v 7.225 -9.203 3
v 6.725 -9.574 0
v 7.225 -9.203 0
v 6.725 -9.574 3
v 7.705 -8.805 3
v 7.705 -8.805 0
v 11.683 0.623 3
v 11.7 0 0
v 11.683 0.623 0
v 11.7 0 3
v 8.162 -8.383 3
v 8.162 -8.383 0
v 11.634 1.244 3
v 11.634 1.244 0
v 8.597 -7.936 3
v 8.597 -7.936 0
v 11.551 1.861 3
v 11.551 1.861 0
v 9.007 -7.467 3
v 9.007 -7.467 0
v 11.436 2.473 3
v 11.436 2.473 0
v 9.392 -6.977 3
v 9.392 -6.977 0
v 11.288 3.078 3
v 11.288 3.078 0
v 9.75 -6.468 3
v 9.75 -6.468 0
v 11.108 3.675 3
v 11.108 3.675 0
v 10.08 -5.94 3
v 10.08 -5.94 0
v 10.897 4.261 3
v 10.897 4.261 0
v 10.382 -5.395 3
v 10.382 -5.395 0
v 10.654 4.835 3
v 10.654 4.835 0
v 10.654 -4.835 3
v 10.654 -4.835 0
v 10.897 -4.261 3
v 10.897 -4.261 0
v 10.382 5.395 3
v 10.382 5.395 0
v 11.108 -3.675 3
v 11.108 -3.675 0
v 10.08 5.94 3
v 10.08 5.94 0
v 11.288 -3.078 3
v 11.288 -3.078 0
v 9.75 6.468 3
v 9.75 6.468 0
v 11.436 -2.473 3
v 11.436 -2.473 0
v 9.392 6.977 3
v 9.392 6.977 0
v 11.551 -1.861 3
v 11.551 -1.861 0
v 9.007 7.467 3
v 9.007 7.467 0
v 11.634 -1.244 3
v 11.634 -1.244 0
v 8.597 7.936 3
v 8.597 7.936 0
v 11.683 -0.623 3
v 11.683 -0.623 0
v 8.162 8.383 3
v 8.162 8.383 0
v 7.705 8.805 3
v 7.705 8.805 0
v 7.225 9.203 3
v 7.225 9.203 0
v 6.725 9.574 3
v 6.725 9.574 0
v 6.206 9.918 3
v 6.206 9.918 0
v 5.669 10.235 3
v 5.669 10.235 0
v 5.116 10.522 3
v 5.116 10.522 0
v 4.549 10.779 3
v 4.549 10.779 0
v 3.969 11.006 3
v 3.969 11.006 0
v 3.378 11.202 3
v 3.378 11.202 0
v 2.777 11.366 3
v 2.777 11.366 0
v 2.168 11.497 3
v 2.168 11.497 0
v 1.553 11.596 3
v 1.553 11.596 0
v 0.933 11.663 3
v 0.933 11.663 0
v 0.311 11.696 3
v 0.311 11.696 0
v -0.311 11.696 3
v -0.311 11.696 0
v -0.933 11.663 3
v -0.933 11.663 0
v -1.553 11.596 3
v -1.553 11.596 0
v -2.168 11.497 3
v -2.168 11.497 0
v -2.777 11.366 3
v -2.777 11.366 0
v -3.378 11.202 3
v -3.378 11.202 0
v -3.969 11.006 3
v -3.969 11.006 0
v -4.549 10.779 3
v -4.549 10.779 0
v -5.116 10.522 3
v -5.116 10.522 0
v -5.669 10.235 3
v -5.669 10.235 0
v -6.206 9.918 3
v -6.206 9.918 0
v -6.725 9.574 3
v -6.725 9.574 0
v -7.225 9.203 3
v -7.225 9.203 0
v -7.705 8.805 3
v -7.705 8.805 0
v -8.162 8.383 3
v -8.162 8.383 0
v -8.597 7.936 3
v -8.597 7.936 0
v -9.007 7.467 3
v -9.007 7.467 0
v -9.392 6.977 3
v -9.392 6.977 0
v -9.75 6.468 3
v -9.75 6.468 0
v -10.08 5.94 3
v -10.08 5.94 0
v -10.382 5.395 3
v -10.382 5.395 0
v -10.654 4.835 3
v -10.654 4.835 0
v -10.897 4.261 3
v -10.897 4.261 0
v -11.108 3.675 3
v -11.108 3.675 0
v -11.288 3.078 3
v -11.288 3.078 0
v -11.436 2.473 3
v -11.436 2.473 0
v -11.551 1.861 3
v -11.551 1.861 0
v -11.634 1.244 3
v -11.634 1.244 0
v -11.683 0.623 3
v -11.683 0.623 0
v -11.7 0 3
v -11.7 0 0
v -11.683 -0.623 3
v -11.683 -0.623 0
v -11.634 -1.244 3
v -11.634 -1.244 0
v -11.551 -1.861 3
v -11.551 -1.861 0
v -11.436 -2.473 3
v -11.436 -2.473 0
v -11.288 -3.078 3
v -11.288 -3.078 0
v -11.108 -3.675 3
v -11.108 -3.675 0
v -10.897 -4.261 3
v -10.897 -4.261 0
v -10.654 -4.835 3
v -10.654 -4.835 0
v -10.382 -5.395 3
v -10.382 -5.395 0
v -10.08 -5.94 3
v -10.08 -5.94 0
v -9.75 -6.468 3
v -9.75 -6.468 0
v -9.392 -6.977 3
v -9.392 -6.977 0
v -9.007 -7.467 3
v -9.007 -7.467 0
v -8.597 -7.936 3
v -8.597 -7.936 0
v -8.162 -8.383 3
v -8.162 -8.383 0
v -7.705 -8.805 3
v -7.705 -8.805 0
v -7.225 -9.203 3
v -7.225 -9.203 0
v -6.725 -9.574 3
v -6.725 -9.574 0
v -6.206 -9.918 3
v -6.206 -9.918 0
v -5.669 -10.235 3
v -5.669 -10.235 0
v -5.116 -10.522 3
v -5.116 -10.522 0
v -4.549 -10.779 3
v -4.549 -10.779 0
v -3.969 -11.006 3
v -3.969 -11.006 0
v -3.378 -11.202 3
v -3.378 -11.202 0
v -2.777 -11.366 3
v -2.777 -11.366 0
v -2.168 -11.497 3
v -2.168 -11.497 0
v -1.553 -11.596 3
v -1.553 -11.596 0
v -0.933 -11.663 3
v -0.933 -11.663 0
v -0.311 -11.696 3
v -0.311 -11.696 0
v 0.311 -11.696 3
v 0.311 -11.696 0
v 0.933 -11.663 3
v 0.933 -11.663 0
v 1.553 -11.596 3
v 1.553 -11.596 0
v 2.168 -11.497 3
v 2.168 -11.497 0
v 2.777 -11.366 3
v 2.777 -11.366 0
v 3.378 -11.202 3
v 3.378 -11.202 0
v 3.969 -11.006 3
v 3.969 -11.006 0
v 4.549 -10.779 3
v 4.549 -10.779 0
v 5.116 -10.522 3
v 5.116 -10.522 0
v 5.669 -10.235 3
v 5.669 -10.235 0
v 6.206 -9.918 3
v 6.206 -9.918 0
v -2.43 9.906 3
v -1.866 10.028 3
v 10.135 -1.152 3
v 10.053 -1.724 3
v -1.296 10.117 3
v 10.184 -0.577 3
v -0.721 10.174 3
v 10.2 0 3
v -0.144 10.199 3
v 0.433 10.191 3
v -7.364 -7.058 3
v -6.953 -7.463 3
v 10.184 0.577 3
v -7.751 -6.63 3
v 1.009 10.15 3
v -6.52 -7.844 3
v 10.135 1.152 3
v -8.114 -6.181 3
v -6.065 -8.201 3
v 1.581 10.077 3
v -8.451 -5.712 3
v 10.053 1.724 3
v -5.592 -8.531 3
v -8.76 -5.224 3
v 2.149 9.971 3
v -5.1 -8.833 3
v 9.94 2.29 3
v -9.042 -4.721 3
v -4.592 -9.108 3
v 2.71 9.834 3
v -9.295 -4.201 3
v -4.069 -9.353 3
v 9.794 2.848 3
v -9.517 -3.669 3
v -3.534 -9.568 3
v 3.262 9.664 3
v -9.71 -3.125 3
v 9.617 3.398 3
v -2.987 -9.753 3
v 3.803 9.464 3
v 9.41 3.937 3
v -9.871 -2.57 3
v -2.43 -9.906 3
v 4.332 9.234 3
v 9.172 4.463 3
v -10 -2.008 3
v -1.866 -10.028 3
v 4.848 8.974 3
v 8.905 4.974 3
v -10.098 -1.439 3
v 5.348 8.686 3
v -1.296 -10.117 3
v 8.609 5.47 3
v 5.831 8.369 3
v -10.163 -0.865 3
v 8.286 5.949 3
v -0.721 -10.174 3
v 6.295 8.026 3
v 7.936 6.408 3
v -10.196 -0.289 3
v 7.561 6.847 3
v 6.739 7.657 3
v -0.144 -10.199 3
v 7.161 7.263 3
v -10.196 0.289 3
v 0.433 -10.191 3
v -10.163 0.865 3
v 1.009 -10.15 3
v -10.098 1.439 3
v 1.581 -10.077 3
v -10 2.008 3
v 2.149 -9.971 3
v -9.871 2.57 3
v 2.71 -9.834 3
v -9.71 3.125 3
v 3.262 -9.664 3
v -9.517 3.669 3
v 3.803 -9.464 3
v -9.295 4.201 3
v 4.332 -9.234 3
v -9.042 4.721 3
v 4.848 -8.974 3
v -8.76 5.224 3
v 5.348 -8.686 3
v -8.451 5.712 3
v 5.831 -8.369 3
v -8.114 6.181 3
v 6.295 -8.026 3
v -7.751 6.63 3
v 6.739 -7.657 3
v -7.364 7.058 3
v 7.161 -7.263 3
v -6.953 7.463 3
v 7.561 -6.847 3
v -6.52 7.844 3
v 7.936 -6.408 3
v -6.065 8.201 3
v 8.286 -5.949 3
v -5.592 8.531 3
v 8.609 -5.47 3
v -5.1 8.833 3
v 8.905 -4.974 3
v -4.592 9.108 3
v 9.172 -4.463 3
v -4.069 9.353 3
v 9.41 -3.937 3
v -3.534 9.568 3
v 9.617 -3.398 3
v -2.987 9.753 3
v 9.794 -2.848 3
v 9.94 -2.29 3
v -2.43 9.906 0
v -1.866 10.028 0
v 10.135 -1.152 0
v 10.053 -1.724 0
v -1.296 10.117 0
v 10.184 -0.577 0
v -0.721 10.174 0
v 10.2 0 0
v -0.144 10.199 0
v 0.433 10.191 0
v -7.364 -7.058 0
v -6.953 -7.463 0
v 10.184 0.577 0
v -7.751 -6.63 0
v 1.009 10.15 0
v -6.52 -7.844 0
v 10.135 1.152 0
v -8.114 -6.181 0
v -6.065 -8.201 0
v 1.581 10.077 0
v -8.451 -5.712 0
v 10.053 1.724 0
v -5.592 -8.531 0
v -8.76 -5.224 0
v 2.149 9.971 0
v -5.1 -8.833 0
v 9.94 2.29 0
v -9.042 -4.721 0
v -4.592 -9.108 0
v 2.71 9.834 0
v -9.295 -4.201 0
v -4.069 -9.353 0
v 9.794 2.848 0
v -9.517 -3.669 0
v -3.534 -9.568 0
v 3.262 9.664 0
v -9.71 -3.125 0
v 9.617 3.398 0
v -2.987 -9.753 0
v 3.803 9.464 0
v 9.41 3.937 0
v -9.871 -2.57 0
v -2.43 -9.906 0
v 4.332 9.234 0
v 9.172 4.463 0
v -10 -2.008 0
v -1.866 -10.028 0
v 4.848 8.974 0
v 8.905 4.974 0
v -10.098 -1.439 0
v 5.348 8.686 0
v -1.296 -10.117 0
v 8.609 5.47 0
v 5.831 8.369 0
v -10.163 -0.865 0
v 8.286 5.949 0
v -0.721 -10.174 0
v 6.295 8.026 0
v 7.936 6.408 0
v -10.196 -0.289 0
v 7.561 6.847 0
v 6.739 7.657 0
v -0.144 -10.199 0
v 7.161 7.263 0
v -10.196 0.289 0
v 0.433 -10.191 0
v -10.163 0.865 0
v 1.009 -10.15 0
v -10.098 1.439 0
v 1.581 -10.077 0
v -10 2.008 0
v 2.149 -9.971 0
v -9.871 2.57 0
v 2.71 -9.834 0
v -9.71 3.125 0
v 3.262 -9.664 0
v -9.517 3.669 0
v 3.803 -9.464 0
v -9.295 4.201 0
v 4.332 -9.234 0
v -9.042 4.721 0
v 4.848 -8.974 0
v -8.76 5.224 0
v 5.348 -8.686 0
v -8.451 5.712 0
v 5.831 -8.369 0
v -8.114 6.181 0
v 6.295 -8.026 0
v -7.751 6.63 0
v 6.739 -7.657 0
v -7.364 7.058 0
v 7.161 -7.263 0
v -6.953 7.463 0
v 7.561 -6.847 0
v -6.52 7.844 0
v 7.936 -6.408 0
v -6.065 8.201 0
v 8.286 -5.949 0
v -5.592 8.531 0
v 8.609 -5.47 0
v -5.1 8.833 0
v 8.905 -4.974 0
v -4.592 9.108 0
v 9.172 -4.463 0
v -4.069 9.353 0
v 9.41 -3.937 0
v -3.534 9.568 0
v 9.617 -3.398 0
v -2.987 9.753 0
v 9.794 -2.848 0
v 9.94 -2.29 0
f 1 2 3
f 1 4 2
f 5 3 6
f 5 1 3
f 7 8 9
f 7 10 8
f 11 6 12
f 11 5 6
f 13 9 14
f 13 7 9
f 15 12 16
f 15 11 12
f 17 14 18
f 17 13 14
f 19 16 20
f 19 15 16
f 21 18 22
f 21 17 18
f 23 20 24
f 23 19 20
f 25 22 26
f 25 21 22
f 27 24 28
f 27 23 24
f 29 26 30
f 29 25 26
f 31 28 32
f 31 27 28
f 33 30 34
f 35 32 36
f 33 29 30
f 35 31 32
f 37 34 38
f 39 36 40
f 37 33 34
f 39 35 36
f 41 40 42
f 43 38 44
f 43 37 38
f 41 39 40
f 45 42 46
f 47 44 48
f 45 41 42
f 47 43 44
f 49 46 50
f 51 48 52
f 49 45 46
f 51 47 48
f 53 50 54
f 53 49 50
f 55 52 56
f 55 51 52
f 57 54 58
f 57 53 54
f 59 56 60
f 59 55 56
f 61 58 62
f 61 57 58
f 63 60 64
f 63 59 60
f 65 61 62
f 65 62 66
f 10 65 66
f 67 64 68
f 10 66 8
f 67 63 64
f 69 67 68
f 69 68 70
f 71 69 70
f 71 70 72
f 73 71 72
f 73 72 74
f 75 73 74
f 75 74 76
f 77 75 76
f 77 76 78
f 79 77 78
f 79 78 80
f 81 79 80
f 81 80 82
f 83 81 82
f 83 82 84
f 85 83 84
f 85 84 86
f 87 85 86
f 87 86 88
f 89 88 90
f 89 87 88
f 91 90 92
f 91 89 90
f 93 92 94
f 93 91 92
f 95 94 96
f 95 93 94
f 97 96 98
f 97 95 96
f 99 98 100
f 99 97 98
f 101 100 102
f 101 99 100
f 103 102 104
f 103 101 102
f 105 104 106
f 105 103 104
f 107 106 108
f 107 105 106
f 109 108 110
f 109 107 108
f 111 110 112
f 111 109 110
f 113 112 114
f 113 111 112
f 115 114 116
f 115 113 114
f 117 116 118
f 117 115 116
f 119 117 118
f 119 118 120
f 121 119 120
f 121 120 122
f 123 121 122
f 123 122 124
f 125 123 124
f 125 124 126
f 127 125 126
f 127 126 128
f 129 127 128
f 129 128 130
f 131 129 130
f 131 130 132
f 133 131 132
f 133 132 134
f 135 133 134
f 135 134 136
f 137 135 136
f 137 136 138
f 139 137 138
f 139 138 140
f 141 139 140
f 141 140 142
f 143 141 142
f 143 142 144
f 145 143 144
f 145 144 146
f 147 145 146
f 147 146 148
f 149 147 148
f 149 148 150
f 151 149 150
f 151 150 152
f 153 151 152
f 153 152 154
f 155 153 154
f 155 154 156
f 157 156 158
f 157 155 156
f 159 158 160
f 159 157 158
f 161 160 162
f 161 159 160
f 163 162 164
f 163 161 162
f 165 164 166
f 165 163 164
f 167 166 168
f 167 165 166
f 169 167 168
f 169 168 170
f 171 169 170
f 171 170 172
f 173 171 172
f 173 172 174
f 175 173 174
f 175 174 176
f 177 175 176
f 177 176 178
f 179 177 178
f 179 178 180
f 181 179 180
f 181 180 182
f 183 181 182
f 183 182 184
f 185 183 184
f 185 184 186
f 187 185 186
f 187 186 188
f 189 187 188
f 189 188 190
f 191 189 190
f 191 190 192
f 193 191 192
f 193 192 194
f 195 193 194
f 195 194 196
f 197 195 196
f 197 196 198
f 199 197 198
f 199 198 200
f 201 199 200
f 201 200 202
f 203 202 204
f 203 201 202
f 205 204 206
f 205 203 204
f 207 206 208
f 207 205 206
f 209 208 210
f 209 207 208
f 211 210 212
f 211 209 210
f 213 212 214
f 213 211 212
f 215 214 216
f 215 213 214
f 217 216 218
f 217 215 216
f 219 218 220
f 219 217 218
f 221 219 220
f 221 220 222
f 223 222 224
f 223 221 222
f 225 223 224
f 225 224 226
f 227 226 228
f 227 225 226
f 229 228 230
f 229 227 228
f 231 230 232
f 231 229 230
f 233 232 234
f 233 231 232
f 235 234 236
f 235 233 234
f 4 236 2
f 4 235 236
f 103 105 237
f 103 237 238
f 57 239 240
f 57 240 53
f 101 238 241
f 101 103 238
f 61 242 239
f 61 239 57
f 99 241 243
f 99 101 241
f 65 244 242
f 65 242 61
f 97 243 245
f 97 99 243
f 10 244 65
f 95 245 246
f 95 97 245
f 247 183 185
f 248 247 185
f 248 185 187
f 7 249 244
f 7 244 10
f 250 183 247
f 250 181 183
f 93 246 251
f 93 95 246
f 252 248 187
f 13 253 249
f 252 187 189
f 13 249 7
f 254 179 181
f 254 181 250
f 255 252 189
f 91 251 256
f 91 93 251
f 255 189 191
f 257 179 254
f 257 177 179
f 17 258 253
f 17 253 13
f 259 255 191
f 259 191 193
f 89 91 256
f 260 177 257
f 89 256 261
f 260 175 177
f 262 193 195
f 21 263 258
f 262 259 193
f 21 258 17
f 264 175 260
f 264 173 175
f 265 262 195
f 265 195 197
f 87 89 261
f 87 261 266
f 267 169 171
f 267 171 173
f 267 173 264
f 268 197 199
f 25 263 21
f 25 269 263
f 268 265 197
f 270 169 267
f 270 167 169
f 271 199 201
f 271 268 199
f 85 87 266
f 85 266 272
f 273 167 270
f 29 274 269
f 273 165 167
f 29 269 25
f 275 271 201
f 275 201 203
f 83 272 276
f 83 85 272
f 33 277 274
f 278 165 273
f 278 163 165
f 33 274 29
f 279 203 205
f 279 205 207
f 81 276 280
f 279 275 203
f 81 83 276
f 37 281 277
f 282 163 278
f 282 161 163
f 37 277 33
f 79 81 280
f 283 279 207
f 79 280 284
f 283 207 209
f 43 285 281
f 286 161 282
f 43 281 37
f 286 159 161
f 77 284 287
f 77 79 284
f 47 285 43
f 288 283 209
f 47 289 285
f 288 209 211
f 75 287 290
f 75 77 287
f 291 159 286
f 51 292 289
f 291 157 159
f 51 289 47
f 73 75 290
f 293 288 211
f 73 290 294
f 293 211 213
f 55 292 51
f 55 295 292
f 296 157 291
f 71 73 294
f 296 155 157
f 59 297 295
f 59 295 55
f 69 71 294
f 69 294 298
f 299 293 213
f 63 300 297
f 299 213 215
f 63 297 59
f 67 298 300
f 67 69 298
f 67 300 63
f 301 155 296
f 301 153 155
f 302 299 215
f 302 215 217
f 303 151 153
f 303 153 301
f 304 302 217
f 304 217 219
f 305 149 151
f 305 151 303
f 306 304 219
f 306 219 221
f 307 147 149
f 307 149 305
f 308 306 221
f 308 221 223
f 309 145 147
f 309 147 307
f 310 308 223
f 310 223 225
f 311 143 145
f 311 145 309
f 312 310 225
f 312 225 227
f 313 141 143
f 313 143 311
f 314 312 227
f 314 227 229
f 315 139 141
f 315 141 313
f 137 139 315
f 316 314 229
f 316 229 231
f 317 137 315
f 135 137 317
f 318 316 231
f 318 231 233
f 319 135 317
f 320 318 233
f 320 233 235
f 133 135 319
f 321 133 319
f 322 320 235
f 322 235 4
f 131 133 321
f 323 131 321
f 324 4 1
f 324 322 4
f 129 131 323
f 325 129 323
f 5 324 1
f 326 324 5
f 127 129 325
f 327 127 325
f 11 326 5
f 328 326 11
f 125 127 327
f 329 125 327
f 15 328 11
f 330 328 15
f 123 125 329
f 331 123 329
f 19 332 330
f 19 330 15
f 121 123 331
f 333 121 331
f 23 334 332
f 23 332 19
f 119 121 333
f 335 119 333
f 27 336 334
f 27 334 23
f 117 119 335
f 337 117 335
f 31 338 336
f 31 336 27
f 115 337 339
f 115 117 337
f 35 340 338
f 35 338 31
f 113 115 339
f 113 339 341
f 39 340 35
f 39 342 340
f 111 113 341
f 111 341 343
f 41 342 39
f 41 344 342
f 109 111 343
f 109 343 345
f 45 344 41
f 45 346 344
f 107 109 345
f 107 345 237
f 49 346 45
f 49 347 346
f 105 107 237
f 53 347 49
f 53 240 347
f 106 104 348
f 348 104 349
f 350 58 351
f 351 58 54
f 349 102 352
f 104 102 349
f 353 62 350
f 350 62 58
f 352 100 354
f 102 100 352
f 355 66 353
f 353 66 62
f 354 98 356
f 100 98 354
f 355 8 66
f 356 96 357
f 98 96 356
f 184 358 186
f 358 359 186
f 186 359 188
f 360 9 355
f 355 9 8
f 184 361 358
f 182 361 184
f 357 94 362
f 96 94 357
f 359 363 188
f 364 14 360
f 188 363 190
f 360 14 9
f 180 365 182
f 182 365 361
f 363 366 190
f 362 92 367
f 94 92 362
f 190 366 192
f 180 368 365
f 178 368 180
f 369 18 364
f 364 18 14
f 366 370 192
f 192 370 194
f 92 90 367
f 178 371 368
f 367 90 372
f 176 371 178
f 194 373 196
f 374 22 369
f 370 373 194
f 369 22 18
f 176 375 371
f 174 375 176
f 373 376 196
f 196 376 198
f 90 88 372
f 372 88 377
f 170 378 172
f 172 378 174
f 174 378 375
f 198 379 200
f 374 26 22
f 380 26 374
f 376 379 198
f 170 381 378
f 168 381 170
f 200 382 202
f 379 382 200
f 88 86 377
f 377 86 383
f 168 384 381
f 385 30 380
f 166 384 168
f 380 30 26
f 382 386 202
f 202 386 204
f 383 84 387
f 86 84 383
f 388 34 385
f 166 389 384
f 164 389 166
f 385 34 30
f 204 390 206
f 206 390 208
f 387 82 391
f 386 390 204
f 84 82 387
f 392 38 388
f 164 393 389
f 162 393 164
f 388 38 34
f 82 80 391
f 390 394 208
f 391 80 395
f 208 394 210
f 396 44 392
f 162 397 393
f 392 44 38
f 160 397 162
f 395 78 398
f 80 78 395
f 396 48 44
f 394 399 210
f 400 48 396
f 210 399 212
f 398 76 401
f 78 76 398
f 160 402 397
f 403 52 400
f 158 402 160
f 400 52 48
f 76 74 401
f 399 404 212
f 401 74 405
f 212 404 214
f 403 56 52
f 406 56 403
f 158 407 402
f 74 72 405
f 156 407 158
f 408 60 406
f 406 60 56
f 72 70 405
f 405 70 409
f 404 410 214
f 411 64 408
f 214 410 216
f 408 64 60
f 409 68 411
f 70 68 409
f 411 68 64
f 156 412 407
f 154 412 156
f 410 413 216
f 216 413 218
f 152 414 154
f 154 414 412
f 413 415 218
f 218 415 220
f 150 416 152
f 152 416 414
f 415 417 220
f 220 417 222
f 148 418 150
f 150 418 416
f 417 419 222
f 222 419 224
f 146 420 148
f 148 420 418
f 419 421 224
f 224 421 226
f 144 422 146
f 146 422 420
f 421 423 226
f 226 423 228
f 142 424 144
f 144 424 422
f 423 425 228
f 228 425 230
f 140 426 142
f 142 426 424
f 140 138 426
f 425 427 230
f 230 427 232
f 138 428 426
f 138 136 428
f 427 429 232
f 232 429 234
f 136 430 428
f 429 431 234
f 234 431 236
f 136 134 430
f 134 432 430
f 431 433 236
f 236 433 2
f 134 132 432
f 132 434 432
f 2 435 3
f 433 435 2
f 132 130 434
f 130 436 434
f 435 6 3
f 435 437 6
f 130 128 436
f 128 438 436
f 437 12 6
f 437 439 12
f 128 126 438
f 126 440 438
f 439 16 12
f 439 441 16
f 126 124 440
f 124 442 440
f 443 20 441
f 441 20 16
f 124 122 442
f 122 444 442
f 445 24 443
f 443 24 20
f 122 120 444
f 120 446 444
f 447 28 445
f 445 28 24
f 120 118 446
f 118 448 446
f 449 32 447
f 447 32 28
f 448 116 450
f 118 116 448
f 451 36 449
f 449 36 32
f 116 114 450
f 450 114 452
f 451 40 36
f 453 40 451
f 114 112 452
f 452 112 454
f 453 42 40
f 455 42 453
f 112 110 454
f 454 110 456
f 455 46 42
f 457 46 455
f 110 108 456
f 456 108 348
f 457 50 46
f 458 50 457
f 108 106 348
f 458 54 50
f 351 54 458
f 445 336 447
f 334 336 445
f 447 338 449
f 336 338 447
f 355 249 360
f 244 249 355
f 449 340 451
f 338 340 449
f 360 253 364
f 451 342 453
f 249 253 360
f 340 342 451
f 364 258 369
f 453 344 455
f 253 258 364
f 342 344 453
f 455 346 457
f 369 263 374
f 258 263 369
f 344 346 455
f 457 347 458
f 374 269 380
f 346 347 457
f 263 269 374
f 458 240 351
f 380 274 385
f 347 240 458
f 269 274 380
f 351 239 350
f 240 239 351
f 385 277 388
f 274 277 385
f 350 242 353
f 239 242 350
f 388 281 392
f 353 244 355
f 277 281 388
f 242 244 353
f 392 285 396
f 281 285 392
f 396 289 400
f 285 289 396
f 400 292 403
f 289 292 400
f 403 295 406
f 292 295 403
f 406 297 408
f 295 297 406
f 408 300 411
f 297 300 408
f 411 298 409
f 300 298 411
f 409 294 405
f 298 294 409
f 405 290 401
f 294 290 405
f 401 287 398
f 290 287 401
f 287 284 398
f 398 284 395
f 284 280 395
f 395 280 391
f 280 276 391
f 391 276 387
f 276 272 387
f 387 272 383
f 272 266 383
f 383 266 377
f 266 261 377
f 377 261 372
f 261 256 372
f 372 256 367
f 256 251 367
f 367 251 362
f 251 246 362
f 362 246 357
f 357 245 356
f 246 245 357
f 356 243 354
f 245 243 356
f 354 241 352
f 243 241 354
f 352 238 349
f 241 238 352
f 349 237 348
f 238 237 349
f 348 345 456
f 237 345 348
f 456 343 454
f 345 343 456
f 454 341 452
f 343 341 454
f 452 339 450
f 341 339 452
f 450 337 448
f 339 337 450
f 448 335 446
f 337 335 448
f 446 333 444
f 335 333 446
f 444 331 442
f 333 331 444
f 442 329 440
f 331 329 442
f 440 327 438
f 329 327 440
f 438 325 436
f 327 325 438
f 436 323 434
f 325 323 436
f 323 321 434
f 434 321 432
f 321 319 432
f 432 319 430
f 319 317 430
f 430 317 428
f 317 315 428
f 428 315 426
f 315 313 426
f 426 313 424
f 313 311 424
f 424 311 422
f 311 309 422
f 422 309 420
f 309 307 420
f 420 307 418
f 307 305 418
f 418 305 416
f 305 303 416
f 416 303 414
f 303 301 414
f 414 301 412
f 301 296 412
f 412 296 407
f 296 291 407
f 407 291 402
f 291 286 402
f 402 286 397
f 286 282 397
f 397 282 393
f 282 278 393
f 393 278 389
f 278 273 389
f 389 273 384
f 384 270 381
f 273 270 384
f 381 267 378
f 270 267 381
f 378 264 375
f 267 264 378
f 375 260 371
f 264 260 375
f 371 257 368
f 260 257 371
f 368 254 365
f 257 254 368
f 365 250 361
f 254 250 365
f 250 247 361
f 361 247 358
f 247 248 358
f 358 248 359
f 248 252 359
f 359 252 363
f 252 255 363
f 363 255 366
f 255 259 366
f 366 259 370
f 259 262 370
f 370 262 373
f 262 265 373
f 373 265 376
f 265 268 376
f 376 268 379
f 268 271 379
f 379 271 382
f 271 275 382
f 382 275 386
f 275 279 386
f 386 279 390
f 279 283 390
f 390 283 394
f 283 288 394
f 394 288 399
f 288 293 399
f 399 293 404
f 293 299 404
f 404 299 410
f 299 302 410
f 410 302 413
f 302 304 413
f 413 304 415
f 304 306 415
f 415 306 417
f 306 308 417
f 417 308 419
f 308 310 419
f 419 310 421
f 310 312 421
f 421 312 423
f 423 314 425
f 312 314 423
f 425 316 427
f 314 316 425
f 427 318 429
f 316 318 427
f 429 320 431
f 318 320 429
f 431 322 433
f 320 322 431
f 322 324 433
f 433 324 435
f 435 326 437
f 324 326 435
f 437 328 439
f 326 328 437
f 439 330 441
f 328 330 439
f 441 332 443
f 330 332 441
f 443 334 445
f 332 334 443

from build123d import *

# Parameters (mm, degrees)
CYLINDER_R        = 10.2
CYLINDER_DEPTH    = 18
CYLINDER001_R     = 11.7
CYLINDER001_DEPTH = 3


with BuildPart() as cilindro_interior:
    # Cylinder → Cylinder (new body)
    with BuildSketch(Plane.XY.offset(-8)):
        Circle(CYLINDER_R)
    extrude(amount=CYLINDER_DEPTH)


with BuildPart() as anillo:
    # Cylinder001 → Cylinder001 (new body)
    with BuildSketch(Plane.XY):
        Circle(CYLINDER001_R)
    extrude(amount=CYLINDER001_DEPTH)

    # Cut: cut cilindro-interior
    add(cilindro_interior.part, mode=Mode.SUBTRACT)


solid = anillo.part
